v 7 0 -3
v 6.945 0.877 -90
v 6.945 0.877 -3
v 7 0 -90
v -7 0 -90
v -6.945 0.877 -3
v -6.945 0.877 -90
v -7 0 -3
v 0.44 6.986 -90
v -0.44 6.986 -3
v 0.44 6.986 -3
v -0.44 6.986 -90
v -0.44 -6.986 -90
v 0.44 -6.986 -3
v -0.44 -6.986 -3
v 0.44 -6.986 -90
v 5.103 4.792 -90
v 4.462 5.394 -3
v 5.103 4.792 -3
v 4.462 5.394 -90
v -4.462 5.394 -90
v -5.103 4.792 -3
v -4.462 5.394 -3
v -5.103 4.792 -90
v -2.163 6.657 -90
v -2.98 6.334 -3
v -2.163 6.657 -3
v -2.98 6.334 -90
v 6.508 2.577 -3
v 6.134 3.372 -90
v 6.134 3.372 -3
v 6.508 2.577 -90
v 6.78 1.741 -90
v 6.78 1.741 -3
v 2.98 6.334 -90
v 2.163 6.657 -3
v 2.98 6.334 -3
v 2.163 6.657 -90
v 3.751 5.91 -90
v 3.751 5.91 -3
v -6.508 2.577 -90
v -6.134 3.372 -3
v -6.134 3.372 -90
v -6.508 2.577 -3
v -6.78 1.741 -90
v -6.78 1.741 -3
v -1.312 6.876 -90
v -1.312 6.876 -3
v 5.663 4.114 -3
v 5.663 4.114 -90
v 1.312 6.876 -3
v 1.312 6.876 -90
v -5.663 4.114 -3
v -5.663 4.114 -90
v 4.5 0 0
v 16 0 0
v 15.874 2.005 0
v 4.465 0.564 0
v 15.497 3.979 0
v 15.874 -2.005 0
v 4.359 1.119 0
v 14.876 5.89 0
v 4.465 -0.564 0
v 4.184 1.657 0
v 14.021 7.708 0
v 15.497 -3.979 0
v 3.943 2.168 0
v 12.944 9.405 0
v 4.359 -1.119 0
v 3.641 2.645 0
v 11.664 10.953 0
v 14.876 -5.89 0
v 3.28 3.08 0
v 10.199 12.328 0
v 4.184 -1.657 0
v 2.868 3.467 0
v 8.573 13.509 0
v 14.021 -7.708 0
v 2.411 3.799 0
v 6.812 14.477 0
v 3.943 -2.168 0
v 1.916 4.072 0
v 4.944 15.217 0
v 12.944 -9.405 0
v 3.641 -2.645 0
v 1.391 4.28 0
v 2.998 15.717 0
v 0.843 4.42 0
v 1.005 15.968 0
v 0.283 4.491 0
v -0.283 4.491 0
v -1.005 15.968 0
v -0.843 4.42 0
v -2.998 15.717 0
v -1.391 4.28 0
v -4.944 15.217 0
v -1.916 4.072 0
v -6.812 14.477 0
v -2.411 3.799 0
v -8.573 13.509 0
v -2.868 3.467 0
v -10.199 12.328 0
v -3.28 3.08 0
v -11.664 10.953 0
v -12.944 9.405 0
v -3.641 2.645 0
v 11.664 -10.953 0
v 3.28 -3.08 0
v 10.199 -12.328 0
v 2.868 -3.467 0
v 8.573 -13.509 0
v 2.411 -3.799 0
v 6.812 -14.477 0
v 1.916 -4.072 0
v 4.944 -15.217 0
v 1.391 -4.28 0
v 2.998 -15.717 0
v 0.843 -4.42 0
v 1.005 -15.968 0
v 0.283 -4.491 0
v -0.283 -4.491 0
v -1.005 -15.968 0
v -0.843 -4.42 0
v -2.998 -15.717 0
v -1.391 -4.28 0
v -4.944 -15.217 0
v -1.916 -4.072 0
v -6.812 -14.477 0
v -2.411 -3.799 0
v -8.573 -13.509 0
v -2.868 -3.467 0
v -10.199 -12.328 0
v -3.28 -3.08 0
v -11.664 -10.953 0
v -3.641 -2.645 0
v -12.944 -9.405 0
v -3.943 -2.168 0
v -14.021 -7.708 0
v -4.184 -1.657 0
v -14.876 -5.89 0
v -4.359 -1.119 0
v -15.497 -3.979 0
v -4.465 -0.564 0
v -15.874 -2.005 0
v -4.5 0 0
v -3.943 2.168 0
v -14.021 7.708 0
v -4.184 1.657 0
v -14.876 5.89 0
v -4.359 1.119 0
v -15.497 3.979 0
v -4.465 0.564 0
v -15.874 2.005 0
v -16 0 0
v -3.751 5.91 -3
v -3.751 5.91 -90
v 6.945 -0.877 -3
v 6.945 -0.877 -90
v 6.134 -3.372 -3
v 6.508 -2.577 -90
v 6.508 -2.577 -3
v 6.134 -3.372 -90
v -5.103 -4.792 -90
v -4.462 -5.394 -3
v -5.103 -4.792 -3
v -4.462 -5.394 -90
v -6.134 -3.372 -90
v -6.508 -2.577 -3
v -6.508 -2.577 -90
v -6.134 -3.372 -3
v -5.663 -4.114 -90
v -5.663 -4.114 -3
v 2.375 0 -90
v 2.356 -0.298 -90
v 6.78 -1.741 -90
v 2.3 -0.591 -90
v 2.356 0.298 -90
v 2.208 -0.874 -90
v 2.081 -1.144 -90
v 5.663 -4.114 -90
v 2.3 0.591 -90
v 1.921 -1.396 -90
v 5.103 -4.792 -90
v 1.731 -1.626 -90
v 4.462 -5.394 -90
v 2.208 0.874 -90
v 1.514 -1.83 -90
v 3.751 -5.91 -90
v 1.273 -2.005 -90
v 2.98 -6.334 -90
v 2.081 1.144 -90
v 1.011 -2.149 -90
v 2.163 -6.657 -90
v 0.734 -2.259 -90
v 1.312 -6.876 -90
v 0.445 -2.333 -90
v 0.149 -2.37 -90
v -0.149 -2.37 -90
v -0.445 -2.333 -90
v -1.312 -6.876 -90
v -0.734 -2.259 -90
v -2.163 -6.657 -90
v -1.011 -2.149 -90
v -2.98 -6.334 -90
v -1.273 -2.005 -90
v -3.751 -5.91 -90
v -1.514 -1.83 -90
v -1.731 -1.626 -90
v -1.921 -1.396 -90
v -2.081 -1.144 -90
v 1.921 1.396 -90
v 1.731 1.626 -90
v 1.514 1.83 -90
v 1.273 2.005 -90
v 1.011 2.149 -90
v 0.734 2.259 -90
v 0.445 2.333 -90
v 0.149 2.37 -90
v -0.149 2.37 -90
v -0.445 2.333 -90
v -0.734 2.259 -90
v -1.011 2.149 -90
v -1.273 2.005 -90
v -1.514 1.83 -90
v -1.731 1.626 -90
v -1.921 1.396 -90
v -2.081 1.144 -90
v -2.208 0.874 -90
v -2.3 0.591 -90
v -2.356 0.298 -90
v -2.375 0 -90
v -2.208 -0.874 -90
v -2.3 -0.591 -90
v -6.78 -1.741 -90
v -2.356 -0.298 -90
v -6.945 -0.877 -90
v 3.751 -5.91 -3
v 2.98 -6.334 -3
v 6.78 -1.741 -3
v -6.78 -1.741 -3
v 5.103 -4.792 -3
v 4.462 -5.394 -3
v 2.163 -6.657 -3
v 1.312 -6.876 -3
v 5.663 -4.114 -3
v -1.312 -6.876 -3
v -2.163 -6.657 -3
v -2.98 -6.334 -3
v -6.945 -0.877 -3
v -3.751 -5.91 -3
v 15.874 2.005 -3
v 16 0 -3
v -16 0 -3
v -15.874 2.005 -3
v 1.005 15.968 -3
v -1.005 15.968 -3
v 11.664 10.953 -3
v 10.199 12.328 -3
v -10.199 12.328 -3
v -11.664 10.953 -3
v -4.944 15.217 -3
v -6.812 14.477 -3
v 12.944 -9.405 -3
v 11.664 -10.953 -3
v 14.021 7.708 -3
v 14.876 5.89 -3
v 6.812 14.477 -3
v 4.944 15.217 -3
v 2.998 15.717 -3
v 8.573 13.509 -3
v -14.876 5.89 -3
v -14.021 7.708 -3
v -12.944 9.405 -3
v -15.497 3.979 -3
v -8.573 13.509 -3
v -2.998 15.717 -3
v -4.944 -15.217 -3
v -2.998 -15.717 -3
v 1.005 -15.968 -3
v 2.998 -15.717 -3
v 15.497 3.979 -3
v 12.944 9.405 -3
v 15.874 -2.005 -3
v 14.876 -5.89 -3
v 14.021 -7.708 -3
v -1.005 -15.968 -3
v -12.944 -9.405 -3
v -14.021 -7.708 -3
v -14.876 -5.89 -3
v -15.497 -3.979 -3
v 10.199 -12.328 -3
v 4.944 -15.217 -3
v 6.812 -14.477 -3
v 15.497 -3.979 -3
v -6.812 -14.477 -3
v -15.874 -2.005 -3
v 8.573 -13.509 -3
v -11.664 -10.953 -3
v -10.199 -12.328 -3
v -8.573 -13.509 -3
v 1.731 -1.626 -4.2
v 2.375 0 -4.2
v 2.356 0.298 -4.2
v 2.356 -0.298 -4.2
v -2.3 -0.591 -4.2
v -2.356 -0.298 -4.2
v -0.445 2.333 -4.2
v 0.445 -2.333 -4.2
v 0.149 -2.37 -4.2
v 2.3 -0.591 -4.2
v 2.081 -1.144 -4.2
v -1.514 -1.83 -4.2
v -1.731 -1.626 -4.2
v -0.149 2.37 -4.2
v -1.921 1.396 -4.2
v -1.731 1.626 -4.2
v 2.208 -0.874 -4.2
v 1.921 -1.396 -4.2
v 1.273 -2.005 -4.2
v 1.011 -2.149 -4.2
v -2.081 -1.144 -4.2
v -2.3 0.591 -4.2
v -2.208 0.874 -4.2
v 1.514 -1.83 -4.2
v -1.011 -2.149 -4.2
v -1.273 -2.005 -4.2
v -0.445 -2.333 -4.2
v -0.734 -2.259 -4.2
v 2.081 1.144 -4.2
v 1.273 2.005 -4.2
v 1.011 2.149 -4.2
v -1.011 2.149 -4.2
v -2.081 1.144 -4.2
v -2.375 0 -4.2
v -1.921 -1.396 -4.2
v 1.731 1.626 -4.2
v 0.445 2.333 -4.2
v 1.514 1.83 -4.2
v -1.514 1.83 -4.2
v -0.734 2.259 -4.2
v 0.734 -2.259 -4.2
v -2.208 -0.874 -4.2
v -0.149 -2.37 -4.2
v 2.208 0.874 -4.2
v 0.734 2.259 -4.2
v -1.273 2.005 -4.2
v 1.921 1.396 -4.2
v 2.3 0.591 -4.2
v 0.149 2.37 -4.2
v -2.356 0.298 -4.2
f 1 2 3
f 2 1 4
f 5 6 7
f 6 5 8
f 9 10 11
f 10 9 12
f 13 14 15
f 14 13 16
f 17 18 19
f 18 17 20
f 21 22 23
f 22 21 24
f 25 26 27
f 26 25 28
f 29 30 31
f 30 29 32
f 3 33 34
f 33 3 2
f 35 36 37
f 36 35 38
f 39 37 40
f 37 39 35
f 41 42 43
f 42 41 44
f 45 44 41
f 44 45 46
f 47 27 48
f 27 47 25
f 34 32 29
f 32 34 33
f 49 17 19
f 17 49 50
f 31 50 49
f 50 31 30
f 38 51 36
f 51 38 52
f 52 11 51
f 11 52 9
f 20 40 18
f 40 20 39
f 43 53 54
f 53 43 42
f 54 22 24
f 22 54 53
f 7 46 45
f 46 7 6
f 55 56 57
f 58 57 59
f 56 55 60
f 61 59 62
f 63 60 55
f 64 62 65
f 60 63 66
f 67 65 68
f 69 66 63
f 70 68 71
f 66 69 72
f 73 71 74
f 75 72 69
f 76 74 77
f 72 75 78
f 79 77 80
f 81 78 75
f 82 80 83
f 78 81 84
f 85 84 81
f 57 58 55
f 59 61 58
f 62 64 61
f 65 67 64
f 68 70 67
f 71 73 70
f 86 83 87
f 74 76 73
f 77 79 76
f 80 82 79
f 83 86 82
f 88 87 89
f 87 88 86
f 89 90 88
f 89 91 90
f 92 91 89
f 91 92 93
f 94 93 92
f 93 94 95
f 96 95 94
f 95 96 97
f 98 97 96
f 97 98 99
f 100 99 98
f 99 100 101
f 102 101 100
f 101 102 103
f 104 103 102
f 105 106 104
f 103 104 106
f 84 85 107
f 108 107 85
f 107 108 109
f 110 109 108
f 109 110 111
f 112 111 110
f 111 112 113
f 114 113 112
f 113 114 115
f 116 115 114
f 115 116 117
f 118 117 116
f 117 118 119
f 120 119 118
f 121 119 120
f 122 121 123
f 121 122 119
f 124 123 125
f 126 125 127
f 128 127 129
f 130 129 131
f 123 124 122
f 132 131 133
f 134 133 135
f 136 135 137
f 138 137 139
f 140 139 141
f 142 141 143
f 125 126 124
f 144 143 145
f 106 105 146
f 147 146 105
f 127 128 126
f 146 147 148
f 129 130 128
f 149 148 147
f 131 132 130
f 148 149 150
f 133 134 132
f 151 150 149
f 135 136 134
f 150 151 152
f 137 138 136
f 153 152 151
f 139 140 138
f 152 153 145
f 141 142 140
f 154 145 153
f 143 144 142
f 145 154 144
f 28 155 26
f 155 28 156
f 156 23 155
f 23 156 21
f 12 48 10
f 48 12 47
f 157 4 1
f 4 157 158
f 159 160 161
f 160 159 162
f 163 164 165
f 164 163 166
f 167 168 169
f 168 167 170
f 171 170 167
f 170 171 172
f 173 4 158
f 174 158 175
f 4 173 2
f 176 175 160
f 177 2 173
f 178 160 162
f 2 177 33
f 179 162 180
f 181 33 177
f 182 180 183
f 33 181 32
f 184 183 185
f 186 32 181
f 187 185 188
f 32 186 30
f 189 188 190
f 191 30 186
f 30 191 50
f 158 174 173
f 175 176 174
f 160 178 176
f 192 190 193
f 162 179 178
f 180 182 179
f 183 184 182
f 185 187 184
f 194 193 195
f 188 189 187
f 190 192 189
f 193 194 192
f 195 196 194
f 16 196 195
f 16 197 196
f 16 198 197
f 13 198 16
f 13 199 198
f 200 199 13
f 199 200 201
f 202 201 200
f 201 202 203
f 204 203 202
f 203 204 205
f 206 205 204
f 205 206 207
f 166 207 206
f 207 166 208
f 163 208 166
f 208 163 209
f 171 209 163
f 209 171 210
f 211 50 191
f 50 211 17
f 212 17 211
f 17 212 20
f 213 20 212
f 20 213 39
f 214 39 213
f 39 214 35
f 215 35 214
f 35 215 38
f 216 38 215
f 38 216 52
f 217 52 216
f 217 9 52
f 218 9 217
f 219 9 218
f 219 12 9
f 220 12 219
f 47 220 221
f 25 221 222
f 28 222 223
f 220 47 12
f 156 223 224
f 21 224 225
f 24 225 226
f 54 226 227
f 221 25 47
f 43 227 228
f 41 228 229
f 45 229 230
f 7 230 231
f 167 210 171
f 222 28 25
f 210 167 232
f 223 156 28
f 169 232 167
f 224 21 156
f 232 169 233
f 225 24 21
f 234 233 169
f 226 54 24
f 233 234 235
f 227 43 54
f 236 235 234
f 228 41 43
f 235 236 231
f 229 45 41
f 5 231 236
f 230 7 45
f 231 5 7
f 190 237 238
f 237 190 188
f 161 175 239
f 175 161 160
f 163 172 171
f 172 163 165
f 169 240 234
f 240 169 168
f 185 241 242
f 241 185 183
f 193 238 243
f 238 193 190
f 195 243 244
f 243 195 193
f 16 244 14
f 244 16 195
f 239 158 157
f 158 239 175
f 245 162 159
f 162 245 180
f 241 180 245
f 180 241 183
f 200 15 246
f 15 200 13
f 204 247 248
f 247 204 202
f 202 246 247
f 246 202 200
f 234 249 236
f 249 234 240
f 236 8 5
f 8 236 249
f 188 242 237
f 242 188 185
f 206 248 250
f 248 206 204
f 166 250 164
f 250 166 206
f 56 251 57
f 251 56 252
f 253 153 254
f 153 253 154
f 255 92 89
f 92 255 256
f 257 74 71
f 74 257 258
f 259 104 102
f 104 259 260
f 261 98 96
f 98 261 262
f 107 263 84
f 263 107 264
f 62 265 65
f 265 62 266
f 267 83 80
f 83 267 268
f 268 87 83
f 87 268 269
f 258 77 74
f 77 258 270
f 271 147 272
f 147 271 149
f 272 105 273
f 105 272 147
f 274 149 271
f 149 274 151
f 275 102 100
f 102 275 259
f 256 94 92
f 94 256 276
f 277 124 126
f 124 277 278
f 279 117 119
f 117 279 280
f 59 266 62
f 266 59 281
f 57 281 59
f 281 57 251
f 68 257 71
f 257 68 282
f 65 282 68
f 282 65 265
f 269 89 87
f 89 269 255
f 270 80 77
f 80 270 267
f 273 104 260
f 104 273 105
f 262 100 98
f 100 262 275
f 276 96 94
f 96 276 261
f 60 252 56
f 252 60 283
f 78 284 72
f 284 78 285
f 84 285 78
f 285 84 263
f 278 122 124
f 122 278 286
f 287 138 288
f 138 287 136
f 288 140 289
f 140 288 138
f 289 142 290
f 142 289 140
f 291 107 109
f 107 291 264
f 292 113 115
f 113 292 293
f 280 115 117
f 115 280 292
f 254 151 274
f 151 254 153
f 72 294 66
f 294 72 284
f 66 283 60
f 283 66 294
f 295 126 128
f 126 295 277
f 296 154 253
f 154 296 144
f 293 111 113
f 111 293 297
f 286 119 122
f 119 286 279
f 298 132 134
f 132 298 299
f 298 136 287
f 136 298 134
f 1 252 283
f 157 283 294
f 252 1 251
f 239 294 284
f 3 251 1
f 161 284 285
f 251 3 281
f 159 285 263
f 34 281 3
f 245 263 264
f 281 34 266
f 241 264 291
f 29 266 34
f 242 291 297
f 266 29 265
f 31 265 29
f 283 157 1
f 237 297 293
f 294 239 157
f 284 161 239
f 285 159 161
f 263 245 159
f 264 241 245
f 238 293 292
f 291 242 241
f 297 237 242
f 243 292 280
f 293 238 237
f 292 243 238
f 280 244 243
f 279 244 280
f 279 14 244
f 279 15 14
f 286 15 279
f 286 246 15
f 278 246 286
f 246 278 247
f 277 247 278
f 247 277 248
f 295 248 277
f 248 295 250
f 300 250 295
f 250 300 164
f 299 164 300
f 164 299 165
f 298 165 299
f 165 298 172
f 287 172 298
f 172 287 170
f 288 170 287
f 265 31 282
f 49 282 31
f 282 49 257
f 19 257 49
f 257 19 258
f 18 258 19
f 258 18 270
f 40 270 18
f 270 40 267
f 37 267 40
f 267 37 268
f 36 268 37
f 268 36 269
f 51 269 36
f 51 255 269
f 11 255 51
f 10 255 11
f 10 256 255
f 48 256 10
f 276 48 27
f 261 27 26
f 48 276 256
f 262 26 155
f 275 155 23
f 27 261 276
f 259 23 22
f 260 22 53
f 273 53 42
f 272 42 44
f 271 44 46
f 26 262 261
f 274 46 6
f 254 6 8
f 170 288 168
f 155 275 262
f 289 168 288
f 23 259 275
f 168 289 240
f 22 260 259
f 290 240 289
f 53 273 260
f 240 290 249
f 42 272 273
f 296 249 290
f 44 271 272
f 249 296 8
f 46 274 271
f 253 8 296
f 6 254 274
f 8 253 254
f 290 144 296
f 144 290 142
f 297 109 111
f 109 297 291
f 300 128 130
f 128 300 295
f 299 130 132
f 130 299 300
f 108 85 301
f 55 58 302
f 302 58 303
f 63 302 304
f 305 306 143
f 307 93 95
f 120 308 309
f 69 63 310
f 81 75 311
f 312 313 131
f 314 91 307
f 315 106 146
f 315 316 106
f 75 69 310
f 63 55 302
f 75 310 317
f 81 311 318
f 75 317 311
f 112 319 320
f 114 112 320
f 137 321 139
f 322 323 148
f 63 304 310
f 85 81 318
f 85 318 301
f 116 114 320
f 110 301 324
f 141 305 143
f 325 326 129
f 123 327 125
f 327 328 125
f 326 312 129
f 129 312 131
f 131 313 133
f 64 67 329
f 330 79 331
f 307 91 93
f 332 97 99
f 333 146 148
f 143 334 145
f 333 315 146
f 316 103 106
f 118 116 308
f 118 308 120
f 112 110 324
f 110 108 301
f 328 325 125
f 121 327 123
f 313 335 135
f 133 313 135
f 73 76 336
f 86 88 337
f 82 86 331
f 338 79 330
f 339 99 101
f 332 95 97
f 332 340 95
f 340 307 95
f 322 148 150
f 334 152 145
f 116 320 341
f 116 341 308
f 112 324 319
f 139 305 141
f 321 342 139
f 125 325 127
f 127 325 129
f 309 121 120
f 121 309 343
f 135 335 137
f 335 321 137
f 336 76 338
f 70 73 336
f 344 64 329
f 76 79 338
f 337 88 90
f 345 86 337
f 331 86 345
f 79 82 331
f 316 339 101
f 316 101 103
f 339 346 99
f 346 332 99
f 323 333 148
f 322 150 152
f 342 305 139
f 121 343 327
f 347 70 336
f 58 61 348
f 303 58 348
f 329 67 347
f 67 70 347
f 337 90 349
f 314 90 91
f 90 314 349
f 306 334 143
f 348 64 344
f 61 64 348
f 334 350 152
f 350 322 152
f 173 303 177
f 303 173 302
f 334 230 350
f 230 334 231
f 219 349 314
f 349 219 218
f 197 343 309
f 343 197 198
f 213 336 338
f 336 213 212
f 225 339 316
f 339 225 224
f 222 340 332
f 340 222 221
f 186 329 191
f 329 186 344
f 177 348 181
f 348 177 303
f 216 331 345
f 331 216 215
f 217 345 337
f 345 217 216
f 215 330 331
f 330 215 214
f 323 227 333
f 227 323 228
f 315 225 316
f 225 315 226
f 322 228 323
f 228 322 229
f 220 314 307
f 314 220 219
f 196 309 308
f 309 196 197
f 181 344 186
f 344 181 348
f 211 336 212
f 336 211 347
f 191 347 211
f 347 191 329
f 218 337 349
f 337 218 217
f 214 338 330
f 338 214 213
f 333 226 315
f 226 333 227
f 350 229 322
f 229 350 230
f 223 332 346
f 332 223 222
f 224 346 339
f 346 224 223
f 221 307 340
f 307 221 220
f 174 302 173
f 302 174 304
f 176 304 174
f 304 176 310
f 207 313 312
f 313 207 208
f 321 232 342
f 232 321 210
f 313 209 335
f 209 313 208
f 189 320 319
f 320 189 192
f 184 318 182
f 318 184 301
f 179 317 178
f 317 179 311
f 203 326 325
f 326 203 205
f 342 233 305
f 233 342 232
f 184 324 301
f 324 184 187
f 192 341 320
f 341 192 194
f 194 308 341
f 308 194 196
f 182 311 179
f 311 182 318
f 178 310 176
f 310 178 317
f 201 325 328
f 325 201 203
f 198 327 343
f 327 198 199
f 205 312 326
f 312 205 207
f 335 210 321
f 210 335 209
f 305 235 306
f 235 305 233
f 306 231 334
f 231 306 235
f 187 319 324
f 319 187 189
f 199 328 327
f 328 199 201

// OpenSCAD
$fn = 50;


difference() {
	union() {
		translate(v = [0, 0, -90.0000000000]) {
			cylinder(h = 90, r = 7.0000000000);
		}
		translate(v = [0, 0, -3.0000000000]) {
			cylinder(h = 3, r = 16.0000000000);
		}
	}
	union() {
		translate(v = [0, 0, 0]) {
			rotate(a = [0, 0, 0]) {
				difference() {
					union() {
						#translate(v = [0, 0, -90.0000000000]) {
							cylinder(h = 90, r = 2.2500000000);
						}
						#translate(v = [0, 0, -4.2000000000]) {
							cylinder(h = 4.2000000000, r = 7.0000000000, r1 = 2.3750000000, r2 = 4.5000000000);
						}
						#translate(v = [0, 0, -90.0000000000]) {
							cylinder(h = 90, r = 2.3750000000);
						}
						#translate(v = [0, 0, -90.0000000000]) {
							cylinder(h = 90, r = 2.2500000000);
						}
					}
					union();
				}
			}
		}
	}
}
